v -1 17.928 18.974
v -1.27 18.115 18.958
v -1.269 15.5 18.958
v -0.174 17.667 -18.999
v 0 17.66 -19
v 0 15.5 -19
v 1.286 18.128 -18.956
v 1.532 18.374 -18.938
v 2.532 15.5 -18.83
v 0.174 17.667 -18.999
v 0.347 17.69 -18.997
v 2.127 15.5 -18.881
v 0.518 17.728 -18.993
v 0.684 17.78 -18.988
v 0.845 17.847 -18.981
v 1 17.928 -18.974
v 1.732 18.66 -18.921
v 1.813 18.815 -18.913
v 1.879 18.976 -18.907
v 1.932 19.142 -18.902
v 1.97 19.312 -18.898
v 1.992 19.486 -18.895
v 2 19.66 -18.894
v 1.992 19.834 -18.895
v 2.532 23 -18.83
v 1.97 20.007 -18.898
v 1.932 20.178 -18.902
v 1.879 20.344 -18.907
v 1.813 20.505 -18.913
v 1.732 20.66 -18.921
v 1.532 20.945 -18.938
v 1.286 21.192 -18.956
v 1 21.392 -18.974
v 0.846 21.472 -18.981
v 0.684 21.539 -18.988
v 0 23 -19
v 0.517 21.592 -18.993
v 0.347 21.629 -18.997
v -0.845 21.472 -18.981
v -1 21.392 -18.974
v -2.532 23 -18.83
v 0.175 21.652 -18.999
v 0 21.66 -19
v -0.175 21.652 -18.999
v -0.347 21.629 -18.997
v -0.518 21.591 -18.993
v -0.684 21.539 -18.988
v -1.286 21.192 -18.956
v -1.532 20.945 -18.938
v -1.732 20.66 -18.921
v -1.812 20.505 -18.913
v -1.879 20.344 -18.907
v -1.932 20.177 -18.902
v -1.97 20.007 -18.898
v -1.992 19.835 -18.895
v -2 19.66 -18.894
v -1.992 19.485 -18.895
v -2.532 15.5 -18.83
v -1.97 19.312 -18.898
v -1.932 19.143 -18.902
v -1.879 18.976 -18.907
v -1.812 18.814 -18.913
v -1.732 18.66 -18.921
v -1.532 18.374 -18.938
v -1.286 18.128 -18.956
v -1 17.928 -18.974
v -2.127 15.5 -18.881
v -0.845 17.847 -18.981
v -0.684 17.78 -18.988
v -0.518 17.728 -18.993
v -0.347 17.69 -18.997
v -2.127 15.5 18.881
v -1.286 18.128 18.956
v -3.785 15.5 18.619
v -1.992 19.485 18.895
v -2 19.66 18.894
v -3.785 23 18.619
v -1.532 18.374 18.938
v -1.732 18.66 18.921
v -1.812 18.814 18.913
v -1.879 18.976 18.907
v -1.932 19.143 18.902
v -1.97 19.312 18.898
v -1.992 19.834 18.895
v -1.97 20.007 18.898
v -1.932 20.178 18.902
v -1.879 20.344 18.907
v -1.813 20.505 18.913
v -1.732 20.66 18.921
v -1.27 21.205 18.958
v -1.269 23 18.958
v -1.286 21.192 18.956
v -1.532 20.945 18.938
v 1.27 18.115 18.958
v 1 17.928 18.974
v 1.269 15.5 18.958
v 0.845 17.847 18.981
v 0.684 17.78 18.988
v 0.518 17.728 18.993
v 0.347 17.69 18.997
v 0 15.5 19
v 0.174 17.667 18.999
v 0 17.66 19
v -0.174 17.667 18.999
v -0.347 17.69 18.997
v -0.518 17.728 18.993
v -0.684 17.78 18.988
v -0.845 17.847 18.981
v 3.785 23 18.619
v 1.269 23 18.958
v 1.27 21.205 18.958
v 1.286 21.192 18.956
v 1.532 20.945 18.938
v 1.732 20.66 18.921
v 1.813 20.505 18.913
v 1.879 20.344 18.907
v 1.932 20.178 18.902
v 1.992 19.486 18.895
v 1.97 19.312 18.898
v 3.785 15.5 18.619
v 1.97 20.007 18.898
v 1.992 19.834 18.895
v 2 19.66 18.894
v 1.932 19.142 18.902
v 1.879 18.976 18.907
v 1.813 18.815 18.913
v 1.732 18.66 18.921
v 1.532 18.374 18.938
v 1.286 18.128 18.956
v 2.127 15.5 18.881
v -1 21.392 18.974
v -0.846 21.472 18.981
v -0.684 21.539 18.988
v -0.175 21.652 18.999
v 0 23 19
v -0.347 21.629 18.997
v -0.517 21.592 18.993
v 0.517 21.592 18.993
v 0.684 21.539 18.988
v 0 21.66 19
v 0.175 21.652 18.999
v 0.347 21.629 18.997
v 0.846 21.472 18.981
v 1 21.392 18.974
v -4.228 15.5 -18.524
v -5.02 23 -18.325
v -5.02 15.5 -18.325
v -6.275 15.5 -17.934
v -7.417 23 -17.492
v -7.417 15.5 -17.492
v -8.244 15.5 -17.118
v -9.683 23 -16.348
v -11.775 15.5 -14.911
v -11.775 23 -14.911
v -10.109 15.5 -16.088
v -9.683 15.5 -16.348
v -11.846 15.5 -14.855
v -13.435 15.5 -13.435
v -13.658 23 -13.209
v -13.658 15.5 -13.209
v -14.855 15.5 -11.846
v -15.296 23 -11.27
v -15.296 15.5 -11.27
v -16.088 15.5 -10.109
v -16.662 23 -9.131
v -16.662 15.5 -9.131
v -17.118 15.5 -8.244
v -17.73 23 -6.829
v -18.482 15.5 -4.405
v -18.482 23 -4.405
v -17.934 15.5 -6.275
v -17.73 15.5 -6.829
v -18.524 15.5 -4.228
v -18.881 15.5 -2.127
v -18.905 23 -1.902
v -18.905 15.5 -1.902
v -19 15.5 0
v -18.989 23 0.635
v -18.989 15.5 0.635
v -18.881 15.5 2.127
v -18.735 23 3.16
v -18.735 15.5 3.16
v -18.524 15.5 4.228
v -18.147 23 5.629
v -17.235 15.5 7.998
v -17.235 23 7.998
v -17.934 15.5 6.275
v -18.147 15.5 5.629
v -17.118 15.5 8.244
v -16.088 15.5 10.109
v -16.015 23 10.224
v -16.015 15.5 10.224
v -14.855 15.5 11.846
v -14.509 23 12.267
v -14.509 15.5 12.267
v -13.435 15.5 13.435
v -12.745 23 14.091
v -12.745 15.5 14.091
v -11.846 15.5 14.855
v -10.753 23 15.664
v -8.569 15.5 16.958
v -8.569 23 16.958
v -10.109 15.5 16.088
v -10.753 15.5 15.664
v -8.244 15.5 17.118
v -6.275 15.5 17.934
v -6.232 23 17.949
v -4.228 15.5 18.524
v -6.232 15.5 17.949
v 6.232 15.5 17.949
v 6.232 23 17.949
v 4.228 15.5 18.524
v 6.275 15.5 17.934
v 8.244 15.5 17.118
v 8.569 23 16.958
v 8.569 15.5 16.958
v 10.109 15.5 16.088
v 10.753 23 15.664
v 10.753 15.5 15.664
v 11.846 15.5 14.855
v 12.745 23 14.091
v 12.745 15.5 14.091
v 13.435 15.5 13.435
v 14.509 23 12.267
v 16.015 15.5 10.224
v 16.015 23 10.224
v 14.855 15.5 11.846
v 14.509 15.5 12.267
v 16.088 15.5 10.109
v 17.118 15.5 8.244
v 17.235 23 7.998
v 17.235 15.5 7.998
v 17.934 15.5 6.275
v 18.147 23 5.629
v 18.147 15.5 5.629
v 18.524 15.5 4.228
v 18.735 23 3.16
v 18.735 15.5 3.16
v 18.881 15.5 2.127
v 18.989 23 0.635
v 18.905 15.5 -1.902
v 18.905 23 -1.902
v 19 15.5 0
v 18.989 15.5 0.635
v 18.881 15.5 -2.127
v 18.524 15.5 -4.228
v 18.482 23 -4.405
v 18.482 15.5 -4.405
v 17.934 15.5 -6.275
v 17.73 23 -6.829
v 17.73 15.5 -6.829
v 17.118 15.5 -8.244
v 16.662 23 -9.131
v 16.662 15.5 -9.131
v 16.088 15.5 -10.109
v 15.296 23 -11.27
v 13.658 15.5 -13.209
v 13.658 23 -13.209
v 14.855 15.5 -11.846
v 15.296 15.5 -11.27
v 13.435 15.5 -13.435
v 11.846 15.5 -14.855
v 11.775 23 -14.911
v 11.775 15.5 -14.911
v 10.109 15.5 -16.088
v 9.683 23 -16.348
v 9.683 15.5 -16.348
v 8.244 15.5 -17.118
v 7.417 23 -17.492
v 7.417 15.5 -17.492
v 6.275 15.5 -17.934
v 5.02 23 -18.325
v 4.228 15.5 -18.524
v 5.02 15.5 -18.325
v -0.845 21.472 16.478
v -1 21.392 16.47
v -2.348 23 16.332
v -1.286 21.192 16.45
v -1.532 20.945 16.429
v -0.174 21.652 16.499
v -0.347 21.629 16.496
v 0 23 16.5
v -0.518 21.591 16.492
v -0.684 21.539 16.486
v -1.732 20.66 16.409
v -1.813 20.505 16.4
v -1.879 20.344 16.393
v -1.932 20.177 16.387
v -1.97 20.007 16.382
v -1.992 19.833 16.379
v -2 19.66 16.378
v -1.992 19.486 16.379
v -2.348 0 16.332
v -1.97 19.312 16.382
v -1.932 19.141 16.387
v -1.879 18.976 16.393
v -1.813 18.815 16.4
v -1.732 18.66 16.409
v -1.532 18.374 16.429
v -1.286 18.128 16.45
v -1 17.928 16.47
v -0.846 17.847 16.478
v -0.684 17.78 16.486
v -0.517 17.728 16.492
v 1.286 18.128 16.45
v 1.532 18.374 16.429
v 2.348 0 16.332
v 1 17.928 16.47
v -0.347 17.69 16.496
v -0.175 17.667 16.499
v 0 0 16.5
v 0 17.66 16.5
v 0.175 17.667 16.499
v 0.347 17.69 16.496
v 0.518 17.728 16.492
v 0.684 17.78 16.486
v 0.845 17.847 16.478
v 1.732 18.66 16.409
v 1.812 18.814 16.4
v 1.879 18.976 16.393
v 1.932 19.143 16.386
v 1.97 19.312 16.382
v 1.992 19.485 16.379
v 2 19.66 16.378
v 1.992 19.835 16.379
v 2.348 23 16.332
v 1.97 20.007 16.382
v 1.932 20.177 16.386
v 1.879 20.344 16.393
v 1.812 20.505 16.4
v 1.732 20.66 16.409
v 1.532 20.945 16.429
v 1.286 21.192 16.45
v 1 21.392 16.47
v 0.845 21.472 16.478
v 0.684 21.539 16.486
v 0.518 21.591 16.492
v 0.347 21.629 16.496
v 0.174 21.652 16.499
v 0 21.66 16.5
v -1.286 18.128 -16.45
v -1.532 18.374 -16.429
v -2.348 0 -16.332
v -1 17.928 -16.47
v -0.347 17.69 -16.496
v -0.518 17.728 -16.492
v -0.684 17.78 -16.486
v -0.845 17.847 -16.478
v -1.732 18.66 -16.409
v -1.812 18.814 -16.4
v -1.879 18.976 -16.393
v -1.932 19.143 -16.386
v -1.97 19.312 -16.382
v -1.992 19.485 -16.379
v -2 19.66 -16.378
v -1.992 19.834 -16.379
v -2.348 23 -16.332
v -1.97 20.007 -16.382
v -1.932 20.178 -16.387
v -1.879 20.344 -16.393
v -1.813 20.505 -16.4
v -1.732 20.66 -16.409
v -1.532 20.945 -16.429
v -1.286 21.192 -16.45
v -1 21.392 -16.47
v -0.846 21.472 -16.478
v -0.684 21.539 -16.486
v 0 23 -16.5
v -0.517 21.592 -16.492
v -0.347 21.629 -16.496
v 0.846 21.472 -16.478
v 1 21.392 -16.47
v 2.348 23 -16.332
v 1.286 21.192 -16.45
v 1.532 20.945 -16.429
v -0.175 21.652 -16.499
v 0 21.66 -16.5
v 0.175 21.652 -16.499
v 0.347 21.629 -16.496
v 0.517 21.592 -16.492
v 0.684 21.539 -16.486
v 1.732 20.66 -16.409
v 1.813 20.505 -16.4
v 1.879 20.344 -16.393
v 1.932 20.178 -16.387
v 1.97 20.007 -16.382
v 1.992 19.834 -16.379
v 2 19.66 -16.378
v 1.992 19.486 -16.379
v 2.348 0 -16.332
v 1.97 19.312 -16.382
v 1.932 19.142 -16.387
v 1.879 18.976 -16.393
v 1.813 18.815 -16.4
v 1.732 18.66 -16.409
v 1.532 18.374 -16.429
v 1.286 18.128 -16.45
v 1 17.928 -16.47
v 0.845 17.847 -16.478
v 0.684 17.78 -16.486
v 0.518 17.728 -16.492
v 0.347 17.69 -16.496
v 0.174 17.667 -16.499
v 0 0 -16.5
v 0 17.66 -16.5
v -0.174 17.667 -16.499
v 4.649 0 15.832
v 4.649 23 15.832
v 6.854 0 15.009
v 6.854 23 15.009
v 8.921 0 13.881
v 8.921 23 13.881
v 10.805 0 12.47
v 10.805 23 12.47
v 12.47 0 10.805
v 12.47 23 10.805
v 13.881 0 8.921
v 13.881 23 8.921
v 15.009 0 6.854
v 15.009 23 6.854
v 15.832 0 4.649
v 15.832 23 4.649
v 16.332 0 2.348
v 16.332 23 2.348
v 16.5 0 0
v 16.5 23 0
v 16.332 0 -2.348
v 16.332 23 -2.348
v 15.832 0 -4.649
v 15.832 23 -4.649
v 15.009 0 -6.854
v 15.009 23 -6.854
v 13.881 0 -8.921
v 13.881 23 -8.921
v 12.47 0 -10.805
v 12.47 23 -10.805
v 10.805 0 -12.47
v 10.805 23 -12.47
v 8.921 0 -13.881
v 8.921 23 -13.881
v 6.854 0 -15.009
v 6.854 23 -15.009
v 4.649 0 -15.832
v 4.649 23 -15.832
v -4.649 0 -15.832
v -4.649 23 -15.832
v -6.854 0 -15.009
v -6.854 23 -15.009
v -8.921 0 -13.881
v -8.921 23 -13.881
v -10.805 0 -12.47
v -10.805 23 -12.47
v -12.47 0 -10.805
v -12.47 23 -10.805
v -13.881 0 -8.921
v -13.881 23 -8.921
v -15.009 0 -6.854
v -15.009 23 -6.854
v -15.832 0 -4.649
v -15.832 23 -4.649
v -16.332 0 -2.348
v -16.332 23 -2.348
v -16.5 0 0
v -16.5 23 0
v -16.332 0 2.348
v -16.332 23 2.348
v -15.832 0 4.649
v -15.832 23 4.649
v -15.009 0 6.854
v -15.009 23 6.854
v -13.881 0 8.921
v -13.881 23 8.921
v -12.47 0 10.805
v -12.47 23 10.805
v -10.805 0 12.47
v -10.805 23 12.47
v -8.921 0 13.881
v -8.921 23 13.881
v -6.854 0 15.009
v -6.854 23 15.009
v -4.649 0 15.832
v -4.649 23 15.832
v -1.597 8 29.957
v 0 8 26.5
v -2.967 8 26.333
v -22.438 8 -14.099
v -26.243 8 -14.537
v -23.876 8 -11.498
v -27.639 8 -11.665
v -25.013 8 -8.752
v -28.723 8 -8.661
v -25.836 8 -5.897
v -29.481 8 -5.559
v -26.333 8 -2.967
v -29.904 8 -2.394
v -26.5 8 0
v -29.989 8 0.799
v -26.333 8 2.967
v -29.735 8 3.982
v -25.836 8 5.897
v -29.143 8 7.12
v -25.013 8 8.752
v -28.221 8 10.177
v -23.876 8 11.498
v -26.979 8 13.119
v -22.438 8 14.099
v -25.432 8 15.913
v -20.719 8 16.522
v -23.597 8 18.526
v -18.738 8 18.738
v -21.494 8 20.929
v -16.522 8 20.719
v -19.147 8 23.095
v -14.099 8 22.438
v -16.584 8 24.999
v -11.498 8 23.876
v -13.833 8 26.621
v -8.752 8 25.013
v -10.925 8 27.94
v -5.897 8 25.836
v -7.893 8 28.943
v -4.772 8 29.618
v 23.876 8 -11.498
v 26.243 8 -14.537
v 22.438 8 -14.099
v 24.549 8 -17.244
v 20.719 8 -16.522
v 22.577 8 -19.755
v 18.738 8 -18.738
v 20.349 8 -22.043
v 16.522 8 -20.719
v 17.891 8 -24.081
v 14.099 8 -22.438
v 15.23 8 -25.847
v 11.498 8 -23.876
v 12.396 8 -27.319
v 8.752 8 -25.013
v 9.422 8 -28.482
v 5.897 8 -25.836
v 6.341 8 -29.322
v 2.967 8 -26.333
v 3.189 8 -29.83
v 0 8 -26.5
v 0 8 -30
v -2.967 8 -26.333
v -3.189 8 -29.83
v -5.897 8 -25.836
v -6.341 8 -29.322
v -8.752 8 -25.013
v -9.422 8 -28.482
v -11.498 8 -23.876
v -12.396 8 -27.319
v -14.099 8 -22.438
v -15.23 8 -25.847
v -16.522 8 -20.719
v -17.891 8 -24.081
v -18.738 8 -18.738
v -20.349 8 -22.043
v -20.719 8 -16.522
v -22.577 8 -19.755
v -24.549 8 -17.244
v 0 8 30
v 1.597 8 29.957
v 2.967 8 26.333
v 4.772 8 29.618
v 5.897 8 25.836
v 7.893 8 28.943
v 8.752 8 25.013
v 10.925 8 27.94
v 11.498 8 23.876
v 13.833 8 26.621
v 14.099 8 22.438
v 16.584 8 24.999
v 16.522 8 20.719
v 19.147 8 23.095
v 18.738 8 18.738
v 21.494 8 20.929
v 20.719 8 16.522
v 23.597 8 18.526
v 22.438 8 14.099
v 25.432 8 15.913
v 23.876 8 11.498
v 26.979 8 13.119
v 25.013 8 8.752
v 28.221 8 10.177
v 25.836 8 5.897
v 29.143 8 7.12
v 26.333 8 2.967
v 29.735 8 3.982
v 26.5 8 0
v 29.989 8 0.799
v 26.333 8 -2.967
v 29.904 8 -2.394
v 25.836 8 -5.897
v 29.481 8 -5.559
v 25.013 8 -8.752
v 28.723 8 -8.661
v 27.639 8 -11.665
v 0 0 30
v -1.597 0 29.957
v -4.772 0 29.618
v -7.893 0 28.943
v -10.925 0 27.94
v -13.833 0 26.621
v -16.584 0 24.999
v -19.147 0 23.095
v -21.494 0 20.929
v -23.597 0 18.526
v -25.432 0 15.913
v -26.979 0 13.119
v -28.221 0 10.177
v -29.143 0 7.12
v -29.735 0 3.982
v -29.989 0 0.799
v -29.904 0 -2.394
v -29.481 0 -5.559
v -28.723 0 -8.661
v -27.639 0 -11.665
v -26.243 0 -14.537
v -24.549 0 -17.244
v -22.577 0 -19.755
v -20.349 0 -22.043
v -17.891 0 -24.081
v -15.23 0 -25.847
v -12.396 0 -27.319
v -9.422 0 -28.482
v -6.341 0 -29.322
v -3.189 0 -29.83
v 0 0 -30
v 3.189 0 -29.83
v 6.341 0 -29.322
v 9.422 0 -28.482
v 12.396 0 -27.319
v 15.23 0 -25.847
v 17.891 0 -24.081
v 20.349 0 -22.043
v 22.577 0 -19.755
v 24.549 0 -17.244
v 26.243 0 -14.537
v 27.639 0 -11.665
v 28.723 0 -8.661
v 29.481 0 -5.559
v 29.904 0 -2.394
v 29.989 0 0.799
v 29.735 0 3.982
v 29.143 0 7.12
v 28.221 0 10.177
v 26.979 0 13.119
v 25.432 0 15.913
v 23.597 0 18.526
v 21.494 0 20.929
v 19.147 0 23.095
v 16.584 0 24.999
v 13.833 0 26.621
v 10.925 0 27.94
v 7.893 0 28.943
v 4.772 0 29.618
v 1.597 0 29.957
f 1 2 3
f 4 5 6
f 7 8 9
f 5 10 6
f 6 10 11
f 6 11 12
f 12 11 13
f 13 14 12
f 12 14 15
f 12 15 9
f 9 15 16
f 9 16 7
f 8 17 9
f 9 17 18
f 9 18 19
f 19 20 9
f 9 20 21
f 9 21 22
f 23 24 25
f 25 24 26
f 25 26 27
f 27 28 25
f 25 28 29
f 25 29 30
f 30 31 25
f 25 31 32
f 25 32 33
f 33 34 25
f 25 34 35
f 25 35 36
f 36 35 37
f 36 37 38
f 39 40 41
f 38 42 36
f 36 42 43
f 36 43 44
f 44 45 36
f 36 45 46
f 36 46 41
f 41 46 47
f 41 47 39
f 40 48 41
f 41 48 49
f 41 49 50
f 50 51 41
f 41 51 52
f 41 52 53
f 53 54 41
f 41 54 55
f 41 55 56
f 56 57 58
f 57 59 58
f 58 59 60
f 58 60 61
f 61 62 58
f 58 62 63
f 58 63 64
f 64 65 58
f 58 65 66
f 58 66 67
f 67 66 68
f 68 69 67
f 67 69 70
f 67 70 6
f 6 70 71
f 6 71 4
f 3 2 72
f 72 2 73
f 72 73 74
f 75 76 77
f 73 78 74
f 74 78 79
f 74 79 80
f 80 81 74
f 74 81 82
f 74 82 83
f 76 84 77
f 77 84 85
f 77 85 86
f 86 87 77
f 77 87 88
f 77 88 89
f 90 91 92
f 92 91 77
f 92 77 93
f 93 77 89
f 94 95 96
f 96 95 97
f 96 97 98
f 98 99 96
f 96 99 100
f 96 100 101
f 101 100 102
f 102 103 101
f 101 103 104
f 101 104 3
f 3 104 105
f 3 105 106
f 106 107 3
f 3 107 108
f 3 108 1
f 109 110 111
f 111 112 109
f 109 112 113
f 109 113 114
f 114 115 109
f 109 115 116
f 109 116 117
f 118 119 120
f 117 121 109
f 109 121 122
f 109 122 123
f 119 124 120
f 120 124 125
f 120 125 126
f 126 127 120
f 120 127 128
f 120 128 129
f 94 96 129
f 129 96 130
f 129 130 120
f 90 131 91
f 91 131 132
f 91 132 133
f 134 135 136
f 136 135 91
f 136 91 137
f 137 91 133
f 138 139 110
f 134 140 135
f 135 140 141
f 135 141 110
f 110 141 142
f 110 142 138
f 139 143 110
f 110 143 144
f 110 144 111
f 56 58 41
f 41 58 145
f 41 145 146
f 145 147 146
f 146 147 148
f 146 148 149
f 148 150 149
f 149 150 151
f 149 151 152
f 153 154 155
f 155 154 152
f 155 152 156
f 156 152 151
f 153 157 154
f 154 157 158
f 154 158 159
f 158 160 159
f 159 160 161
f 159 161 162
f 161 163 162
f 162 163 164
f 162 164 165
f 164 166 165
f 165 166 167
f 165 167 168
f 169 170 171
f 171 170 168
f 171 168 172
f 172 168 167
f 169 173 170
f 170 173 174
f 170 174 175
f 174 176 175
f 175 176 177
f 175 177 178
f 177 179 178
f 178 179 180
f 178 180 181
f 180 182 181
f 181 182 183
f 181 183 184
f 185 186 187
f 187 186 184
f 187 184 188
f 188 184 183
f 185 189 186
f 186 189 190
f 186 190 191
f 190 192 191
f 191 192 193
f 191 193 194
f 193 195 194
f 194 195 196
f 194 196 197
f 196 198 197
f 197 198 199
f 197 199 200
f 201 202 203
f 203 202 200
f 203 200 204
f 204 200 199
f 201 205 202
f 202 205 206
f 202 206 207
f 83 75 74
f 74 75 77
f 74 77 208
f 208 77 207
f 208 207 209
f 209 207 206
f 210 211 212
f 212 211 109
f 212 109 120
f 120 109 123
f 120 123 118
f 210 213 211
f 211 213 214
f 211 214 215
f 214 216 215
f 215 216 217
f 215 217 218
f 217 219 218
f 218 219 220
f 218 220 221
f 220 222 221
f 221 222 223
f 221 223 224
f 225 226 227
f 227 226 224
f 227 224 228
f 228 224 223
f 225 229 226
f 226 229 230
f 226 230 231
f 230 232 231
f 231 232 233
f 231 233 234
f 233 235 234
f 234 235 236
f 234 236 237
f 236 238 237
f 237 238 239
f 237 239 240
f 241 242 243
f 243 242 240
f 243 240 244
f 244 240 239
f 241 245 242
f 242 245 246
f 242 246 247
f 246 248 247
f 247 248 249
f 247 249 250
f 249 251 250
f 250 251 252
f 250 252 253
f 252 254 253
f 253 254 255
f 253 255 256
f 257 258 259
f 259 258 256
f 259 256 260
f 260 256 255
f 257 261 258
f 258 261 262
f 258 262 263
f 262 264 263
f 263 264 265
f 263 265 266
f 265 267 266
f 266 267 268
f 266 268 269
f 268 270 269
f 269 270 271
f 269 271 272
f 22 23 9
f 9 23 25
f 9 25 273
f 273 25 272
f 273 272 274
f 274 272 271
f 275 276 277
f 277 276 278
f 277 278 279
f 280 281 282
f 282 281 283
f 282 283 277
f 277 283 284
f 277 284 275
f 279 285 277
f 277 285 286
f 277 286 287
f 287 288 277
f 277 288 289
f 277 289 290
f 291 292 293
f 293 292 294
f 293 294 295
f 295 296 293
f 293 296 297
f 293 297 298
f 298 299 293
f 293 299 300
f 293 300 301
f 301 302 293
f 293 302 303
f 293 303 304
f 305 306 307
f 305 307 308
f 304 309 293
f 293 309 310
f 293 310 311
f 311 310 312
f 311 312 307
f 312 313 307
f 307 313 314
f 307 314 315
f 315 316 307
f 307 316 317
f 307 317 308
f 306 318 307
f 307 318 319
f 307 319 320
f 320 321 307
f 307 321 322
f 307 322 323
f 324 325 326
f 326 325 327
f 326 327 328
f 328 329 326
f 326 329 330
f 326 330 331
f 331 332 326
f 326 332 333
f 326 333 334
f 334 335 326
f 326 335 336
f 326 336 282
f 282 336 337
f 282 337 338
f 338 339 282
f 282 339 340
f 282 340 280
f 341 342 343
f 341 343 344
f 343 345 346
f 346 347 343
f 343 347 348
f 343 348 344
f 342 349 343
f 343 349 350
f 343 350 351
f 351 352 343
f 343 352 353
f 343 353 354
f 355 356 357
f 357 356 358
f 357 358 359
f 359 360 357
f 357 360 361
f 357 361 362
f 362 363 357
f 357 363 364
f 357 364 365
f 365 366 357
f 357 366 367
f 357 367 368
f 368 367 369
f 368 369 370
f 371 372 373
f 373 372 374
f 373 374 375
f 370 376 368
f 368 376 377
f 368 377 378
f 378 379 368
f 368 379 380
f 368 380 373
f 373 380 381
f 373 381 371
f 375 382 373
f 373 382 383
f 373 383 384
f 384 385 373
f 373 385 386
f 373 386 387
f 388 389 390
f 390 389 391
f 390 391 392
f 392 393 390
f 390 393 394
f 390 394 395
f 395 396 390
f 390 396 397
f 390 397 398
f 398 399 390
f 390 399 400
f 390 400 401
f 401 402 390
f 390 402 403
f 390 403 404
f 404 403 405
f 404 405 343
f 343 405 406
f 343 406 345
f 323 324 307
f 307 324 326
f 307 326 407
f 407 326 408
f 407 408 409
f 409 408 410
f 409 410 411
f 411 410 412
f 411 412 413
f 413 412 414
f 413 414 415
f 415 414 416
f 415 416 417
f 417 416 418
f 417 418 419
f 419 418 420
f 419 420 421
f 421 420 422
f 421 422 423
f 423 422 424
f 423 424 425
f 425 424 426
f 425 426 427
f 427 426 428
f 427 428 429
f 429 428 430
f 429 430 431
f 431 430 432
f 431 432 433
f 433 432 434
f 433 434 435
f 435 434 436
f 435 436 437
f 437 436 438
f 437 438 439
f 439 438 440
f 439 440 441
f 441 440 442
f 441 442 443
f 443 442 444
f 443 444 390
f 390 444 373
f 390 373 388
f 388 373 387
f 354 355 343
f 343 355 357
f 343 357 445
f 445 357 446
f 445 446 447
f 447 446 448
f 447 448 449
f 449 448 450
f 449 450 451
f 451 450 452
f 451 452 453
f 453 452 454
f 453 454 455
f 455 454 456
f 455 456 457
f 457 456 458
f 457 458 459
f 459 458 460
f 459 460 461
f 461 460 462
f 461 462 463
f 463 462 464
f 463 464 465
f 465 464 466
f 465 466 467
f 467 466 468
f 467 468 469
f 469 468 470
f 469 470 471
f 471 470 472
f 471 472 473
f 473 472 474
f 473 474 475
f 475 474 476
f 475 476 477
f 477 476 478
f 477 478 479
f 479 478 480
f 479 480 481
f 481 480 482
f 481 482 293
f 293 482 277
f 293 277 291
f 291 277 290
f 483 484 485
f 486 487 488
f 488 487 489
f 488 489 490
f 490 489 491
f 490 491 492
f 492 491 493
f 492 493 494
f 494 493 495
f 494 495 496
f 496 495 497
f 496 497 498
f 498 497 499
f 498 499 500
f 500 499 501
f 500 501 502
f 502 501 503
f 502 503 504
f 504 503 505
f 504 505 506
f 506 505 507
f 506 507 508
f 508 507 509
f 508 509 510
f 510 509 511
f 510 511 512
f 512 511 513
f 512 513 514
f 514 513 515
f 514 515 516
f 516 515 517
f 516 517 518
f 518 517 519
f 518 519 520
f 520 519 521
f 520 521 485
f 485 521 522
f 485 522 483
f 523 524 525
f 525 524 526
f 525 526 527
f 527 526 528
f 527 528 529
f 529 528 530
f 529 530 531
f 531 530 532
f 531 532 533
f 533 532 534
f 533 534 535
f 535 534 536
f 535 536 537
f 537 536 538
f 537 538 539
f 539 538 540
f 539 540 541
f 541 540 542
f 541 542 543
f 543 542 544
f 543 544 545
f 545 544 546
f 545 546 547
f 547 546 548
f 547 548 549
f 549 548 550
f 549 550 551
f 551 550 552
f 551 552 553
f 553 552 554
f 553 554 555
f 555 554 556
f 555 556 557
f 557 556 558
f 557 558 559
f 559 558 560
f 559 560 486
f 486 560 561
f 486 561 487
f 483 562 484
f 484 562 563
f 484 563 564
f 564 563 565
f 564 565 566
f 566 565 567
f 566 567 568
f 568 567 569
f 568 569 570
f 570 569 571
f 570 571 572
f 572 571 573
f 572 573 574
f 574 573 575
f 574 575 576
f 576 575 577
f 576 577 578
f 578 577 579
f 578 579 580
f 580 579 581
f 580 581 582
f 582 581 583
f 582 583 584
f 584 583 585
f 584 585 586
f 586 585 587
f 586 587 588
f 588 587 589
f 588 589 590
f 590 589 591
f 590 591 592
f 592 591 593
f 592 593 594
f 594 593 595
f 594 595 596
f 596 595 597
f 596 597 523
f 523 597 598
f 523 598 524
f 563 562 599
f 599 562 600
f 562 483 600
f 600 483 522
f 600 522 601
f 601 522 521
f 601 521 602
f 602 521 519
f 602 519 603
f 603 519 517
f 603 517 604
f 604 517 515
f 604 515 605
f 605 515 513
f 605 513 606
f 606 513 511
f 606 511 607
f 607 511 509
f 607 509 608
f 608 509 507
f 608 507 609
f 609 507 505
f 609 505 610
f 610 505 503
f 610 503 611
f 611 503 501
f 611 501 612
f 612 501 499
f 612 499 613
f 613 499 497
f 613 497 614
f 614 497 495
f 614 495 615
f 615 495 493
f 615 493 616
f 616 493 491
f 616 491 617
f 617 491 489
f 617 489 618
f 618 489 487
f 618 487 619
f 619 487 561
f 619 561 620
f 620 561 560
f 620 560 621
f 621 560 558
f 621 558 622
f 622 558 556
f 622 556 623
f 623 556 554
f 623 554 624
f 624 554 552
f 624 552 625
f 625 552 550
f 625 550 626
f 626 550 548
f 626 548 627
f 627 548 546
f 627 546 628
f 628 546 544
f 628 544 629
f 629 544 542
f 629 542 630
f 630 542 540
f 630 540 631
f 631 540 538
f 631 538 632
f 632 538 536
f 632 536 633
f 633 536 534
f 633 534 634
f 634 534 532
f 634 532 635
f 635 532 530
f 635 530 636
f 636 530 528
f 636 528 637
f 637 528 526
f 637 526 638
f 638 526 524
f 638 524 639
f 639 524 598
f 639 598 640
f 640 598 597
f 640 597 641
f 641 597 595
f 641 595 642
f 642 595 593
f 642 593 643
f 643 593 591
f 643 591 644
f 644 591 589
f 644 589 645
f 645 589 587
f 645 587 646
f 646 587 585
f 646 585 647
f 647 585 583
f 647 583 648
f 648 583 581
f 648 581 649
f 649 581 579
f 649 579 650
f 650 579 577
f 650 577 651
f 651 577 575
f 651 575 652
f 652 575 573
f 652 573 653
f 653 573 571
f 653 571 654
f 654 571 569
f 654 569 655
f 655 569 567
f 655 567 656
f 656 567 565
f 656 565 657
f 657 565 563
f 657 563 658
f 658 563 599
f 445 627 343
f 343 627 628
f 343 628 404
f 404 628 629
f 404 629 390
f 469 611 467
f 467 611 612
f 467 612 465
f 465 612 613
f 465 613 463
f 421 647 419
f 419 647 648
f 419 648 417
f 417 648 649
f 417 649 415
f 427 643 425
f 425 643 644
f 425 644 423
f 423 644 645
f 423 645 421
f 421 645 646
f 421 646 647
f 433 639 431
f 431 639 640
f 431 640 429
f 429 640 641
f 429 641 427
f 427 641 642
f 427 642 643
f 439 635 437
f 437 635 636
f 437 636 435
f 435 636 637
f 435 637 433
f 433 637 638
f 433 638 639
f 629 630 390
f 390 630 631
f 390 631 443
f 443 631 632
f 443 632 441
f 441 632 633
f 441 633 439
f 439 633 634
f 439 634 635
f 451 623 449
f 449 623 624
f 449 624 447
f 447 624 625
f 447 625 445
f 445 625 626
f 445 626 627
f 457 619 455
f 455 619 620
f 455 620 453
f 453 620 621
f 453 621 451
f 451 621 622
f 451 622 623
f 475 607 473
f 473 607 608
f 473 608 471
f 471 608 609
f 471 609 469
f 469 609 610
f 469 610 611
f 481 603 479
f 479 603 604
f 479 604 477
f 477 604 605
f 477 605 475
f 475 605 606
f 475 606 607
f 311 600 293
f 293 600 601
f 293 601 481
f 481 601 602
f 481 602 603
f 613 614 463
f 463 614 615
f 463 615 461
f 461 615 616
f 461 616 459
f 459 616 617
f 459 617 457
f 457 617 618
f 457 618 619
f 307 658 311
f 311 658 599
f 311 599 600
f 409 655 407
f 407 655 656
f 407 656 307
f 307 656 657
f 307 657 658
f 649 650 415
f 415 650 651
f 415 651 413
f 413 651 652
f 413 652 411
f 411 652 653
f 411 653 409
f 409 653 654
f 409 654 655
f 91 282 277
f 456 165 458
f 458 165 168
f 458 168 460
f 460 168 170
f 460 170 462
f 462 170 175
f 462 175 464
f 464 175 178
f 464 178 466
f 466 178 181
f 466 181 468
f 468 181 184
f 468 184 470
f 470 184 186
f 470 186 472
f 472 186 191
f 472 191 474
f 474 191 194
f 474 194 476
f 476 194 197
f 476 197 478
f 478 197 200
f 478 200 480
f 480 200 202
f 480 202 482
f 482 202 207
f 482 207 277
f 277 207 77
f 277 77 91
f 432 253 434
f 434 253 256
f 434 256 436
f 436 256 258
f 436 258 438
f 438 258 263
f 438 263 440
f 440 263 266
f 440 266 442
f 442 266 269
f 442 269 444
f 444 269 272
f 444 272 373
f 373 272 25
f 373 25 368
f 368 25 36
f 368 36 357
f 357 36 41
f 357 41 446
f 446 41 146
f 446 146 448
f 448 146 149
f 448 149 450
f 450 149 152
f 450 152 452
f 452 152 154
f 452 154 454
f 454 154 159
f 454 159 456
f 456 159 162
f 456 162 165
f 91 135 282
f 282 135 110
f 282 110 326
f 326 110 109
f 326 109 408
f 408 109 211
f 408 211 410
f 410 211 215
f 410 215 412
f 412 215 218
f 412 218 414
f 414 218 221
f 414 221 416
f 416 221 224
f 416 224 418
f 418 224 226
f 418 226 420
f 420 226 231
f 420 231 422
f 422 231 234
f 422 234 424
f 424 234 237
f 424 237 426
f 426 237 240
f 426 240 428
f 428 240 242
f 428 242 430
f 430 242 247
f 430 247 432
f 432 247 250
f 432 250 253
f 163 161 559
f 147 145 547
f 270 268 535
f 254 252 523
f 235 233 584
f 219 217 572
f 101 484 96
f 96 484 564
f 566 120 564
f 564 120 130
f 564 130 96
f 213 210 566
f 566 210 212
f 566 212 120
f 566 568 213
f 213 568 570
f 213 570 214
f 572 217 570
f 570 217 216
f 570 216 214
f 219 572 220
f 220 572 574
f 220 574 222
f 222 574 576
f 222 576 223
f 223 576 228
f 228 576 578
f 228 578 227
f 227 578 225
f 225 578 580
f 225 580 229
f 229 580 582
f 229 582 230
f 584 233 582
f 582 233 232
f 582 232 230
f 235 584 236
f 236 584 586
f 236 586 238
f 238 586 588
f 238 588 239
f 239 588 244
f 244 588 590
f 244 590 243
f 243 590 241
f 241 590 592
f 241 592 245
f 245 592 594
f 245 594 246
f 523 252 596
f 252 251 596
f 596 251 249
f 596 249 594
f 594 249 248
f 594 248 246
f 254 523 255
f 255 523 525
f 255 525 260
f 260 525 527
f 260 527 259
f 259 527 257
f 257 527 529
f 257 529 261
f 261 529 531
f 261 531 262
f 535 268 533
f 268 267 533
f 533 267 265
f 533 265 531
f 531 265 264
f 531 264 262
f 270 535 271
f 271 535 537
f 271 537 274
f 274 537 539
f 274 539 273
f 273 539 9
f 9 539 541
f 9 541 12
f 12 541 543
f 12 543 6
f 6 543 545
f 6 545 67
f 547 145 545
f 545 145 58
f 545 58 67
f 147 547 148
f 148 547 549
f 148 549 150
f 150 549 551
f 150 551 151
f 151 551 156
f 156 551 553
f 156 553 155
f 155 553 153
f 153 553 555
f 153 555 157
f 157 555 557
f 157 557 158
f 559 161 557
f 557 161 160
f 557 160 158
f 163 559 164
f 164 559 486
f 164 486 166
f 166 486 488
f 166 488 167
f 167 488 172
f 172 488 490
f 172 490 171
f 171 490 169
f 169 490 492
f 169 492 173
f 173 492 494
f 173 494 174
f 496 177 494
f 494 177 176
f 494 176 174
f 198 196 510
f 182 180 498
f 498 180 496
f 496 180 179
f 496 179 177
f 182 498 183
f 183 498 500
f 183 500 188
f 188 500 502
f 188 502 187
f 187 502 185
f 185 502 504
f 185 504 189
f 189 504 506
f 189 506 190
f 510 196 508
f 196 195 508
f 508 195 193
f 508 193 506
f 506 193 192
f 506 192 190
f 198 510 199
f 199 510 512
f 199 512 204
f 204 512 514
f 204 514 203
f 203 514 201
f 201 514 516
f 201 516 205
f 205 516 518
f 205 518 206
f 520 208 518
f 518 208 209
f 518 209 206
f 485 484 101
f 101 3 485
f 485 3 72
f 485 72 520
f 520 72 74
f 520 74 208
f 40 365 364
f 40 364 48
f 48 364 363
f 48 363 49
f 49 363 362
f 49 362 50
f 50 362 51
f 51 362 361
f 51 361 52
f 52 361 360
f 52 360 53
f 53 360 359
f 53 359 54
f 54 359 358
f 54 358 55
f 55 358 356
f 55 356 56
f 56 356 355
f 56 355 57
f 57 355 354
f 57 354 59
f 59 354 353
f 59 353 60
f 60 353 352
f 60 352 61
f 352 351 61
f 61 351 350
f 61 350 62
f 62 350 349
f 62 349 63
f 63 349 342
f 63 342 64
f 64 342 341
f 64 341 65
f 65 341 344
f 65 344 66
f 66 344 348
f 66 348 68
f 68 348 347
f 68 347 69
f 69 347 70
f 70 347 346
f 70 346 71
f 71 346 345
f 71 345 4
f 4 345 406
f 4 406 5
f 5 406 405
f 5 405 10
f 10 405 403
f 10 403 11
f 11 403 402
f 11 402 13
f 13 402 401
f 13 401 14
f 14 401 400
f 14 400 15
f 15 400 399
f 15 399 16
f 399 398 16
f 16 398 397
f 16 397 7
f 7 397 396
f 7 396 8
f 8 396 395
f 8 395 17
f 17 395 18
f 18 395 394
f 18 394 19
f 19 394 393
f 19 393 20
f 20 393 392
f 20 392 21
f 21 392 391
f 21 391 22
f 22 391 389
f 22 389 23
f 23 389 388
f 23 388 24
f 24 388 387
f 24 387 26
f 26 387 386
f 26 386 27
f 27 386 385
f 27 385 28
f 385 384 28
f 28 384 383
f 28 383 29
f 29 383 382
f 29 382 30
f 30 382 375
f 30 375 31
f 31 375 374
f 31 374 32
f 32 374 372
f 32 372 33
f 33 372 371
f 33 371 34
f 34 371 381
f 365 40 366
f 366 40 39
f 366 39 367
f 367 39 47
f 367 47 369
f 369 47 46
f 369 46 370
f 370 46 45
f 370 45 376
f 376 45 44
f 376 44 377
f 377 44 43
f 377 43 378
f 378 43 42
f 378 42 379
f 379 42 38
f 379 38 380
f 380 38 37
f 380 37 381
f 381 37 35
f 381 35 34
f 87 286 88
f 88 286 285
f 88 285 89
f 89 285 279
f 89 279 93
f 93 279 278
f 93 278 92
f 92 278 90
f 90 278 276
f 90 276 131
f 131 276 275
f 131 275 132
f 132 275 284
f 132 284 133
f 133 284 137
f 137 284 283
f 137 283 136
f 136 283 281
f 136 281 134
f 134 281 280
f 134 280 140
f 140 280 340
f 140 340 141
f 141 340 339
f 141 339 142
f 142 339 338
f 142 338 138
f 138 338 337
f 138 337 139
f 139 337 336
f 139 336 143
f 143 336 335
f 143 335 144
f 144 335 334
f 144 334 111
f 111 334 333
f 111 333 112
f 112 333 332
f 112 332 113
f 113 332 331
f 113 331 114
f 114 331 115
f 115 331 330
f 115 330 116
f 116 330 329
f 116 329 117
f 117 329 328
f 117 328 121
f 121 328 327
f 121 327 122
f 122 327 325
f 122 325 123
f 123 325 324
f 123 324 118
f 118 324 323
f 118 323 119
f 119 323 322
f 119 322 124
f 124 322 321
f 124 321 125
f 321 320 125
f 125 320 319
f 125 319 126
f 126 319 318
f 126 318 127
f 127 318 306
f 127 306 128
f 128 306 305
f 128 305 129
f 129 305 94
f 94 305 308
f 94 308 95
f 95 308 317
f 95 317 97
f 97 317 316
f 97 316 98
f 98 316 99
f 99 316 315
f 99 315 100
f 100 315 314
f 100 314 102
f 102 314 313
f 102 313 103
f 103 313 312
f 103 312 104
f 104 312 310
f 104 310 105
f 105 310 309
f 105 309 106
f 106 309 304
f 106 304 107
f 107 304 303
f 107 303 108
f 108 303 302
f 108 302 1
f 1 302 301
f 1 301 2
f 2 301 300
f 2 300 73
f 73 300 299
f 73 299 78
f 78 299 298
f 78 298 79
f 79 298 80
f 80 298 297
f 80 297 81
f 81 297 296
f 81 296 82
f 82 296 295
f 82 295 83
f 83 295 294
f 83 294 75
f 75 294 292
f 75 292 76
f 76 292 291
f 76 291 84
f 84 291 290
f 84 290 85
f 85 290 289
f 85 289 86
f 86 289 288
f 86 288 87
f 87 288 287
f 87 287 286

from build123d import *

# Parameters (mm, degrees)
SKETCH_1_R               = 30
EXTRUDE_1_DEPTH          = 8
SKETCH_2_R               = 16.5
CUT_EXTRUDE_1_DEPTH      = 8
EXTRUDE_START            = 15
SKETCH_3_R               = 19
SKETCH_3_R_2             = 16.5
EXTRUDE_2_DEPTH          = 15
CUT_EXTRUDE_2_DEPTH      = 26
CUT_EXTRUDE_2_DEPTH_BACK = 22
SKETCH_6_R               = 2


with BuildPart() as part:
    # 草图1 → 凸台-拉伸1 (new body)
    with BuildSketch(Plane(origin=(0, 0, 0), x_dir=(1, 0, 0), z_dir=(0, 1, 0))):
        with Locations(Location((0, 0, 0), (0, 0, 270))):
            Circle(SKETCH_1_R)
    extrude(amount=EXTRUDE_1_DEPTH)

    # 草图2 → 切除-拉伸1 (cut)
    with BuildSketch(Plane(origin=(0, 8, 0), x_dir=(1, 0, 0), z_dir=(0, 1, 0))):
        with Locations(Location((0, 0, 0), (0, 0, 270))):
            Circle(SKETCH_2_R)
    extrude(amount=-CUT_EXTRUDE_1_DEPTH, mode=Mode.SUBTRACT)

    # 草图3 → 凸台-拉伸2 (add)
    with BuildSketch(Plane(origin=(0, 8, 0), x_dir=(1, 0, 0), z_dir=(0, 1, 0)).offset(EXTRUDE_START)):
        with Locations(Location((0, 0, 0), (0, 0, 270))):
            Circle(SKETCH_3_R)
        with Locations(Location((0, 0, 0), (0, 0, 270))):
            Circle(SKETCH_3_R_2, mode=Mode.SUBTRACT)
    extrude(amount=-EXTRUDE_2_DEPTH)

    # 扫描1: sweep along a curve in space
    with BuildLine() as sweep_1_path:
        ThreePointArc((0, 8, 19), (13.435028843, 8, 13.435028843), (19, 8, 0))
        ThreePointArc((19, 8, 0), (13.435028843, 8, -13.435028843), (0, 8, -19))
        ThreePointArc((0, 8, -19), (-13.435028843, 8, -13.435028843), (-19, 8, 0))
        ThreePointArc((-19, 8, 0), (-13.435028843, 8, 13.435028843), (0, 8, 19))
    # 草图5 → 扫描1 (sweep)
    with BuildSketch(Plane.XY):
        Polygon((-19, 15.5), (-19, 8), (-26.5, 8), align=None)
    sweep(path=sweep_1_path.line)

    # 草图6 → 切除-拉伸2 (cut, two sides: drawn at the far end of the back side and taken through both)
    with BuildSketch(Plane.XY.offset(-CUT_EXTRUDE_2_DEPTH_BACK)):
        with Locations(Location((0, 19.65958907, 0), (0, 0, 180))):
            Circle(SKETCH_6_R)
    extrude(amount=CUT_EXTRUDE_2_DEPTH + CUT_EXTRUDE_2_DEPTH_BACK, mode=Mode.SUBTRACT)


solid = part.part
